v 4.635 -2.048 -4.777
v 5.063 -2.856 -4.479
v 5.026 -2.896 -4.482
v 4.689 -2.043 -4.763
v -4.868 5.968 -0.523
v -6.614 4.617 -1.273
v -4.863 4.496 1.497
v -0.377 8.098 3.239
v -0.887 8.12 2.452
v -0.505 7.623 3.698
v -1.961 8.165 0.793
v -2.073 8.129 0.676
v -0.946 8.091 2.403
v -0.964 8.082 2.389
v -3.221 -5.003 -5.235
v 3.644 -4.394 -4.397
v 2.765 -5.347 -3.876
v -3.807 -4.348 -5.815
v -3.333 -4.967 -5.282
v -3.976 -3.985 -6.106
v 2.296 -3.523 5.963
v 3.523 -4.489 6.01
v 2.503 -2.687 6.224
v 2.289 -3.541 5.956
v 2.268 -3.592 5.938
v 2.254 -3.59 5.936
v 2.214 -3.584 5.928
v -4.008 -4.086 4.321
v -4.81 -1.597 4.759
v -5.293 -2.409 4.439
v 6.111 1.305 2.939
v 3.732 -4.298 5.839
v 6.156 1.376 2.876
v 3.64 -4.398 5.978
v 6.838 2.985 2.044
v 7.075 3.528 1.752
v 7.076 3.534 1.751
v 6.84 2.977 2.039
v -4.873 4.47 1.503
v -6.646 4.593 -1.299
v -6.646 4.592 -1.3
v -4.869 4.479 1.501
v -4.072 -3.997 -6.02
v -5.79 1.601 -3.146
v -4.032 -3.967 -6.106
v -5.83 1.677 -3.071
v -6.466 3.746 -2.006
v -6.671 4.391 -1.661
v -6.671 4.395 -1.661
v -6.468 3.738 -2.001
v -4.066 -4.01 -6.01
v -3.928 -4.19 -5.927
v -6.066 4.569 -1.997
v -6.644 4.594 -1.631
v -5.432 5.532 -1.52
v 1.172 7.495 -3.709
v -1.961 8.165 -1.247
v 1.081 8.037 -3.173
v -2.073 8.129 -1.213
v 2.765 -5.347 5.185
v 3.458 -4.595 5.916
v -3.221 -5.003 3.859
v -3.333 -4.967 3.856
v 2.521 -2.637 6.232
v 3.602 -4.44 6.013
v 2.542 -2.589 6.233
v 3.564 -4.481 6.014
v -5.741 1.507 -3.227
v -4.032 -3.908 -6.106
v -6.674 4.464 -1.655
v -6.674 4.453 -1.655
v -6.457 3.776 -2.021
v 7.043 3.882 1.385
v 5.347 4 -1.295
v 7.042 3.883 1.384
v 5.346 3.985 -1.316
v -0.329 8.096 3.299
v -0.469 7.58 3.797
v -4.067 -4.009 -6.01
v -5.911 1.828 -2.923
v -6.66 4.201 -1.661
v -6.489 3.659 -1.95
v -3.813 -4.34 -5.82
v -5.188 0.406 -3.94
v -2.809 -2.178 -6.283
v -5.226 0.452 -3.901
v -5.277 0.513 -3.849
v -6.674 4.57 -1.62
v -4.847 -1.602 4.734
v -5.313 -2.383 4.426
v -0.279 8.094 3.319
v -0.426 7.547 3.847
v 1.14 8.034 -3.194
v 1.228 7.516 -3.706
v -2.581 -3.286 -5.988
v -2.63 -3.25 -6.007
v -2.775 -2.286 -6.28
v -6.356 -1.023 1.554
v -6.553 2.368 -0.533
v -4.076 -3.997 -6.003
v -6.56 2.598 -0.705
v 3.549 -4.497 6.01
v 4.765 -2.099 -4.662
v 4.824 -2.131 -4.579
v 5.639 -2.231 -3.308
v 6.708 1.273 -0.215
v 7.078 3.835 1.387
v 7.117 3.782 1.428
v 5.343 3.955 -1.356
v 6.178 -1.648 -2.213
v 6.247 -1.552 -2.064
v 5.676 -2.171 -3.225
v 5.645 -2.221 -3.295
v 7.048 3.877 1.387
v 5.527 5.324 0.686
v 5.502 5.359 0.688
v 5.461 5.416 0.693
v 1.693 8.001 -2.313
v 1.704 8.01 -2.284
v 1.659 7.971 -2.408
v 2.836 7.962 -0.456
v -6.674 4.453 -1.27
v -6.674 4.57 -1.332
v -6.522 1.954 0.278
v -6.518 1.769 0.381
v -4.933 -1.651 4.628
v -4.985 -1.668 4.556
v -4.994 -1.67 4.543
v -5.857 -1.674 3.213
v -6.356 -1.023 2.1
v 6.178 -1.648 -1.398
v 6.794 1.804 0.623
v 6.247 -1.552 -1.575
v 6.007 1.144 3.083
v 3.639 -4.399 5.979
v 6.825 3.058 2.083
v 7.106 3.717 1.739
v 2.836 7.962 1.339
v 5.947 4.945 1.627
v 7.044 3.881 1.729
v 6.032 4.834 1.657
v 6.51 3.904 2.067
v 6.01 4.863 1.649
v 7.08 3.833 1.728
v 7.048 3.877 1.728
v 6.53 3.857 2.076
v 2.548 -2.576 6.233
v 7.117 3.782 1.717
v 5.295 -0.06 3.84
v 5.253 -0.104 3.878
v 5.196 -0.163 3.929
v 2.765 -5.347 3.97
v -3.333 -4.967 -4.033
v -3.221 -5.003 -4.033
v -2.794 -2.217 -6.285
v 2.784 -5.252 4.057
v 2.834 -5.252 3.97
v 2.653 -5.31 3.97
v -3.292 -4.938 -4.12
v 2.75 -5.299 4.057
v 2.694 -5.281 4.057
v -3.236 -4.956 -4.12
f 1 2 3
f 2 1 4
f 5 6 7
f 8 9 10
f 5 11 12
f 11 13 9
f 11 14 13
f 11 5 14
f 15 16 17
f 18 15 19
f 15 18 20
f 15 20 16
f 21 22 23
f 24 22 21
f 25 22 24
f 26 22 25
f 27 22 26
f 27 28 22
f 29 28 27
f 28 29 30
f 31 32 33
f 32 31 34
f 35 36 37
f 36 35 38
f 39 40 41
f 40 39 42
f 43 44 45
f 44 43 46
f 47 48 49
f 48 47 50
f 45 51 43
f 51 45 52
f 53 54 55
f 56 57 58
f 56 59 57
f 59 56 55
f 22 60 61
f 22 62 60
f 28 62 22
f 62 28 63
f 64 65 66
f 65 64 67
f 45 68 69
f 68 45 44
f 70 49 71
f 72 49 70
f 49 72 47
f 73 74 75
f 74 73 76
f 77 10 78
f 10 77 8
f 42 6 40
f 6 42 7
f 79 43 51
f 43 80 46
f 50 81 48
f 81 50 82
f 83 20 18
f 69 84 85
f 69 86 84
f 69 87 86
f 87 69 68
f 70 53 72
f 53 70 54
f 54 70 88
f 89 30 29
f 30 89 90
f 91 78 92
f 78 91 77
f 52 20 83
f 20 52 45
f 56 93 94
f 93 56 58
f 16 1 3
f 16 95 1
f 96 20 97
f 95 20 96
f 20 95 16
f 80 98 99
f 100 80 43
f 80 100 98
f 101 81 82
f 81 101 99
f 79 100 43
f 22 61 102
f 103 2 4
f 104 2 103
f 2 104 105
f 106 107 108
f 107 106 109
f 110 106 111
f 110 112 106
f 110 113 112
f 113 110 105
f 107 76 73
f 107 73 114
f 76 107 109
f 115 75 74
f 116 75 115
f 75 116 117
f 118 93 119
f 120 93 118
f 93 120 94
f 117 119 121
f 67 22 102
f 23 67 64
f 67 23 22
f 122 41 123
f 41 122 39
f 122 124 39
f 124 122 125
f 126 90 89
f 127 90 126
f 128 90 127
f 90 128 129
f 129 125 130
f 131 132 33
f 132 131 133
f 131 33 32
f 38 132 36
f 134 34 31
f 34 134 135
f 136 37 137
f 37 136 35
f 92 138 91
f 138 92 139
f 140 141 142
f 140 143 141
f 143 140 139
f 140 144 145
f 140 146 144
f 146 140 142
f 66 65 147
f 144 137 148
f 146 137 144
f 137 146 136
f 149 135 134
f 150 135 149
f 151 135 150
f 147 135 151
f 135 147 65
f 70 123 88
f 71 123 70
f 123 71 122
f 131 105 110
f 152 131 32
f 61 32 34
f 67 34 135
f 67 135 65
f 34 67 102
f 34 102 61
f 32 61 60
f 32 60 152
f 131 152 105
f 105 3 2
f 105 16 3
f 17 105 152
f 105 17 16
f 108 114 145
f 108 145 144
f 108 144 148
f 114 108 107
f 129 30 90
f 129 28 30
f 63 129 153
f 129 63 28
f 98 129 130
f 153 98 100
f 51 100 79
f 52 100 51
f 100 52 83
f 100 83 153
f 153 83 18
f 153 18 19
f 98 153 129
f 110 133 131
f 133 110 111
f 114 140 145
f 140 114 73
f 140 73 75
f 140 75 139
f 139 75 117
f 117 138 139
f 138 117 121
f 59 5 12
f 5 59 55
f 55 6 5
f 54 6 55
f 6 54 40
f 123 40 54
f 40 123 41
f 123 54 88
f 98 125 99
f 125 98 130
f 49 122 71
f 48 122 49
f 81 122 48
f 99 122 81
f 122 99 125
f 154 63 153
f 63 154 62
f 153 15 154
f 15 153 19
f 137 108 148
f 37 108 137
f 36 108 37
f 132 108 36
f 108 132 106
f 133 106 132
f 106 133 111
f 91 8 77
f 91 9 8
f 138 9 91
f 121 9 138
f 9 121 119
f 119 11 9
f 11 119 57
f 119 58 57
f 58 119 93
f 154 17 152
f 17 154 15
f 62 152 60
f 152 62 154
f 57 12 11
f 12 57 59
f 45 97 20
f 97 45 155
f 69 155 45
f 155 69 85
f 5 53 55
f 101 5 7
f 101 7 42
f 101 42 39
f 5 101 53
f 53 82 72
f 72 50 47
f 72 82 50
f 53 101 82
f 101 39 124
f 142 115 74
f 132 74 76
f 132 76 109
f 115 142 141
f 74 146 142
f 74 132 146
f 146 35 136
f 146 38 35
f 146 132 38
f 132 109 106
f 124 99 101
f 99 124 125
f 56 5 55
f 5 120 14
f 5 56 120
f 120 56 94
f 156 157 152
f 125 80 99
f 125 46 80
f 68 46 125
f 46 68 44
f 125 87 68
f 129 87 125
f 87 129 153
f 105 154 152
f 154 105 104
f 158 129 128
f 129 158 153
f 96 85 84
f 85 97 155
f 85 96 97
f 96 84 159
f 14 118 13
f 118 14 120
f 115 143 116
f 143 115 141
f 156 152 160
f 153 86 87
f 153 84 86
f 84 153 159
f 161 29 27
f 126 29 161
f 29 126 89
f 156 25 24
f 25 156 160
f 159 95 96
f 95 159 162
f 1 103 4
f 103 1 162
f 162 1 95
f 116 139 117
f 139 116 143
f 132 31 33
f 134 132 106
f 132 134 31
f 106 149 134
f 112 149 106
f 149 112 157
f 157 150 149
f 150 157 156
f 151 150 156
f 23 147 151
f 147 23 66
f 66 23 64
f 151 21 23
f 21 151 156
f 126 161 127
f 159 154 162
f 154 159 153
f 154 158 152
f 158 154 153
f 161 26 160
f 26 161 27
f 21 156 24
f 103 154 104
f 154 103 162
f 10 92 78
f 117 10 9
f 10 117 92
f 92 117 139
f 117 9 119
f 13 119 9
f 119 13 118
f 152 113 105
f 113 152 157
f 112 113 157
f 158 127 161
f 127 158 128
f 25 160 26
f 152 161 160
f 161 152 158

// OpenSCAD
// Auto-generated OpenSCAD file

    inner_points = 10*[[0.28049451672543285, 0.7867345754664719, -0.4354727591501641], [-0.32516147561098985, -0.49081979957517285, -0.40329143290440955], [0.6146891757185167, -0.15523991749246438, -0.467063652066502], [-0.6593561346040736, 0.45115469338376324, -0.3717005399880716], [0.7016700222556713, 0.3782028432350707, 0.37428832740645657], [-0.1992160562123516, 0.806988584660629, 0.4417202306321675], [0.27340656300831917, -0.5251645186914181, 0.39704396142240617], [-0.6274795154597037, -0.09637877726585975, 0.4644758646481171], [-0.0723068878516462, 0.15388180167658133, -1.1246958983691562], [0.08706866180685142, 0.13498761925367364, 1.1246958983691562]];

    outer_points = 10*[[0.17620995754639138, 0.41987517424097626, -0.6851507748037986], [-0.13338679414034935, 0.41987517424097626, 0.6947585886491126], [-0.6676027533643164, 0.4567802144980838, -0.14978349254876247], [0.7104259167703585, 0.3829701339838687, 0.15939130639407634], [-0.3991593090883643, -0.393779370015213, -0.6019853395350742], [0.5752541082333443, -0.4459709784667395, -0.3833657426306054], [-0.6180772716393863, -0.393779370015213, 0.37375792878529157], [0.35633614568232225, -0.4459709784667395, 0.5923775256897603], [0.05742142630098579, 1.1260182319875078, 0.01288308314360636], [-0.05742142630098579, -1.1260182319875078, -0.01288308314360636]];

    // Convex hull for inner set (I)
    module inner_hull() {
        hull() {
            for (p = inner_points) {
                translate(p) sphere(r=0.1);
            }
        }
    }

    // Convex hull for outer set (O) minus inner hull (O \ I)
    module outer_minus_inner() {
        difference() {
            hull() {
                for (p = outer_points) {
                    translate(p) sphere(r=0.1);
                }
            }
            inner_hull(); // Subtract inner hull
        }
    }

    // Convex hull for outer set (O) minus all translated inner hulls
    module outer_minus_AllTranslationInner() {
        difference() {
            hull() {
                for (p = outer_points) {
                    translate(p) sphere(r=0.1);
                }
            }
            hull() {
                translate([0,0,50]) inner_hull();
                translate([0,0,-50]) inner_hull();
            }; // Subtract translated inner hulls
        }
    }

    // Difference between outer_minus_inner and outer_minus_AllTranslationInner
    module outer_minus_inner_diff() {
        difference() {
            // Outer minus inner
            difference() {
                hull() {
                    for (p = outer_points) {
                        translate(p) sphere(r=0.1);
                    }
                }
                inner_hull();
            }

            // Subtract Outer minus AllTranslationInner
            difference() {
                hull() {
                    for (p = outer_points) {
                        translate(p) sphere(r=0.1);
                    }
                }
                hull() {
                    translate([0,0,50]) inner_hull();
                    translate([0,0,-50]) inner_hull();
                };
            }
        }
    }

    // Rendering all with colors applied
    color([1, 1, 0, 1]) outer_minus_inner_diff(); // Opaque yellow
    
